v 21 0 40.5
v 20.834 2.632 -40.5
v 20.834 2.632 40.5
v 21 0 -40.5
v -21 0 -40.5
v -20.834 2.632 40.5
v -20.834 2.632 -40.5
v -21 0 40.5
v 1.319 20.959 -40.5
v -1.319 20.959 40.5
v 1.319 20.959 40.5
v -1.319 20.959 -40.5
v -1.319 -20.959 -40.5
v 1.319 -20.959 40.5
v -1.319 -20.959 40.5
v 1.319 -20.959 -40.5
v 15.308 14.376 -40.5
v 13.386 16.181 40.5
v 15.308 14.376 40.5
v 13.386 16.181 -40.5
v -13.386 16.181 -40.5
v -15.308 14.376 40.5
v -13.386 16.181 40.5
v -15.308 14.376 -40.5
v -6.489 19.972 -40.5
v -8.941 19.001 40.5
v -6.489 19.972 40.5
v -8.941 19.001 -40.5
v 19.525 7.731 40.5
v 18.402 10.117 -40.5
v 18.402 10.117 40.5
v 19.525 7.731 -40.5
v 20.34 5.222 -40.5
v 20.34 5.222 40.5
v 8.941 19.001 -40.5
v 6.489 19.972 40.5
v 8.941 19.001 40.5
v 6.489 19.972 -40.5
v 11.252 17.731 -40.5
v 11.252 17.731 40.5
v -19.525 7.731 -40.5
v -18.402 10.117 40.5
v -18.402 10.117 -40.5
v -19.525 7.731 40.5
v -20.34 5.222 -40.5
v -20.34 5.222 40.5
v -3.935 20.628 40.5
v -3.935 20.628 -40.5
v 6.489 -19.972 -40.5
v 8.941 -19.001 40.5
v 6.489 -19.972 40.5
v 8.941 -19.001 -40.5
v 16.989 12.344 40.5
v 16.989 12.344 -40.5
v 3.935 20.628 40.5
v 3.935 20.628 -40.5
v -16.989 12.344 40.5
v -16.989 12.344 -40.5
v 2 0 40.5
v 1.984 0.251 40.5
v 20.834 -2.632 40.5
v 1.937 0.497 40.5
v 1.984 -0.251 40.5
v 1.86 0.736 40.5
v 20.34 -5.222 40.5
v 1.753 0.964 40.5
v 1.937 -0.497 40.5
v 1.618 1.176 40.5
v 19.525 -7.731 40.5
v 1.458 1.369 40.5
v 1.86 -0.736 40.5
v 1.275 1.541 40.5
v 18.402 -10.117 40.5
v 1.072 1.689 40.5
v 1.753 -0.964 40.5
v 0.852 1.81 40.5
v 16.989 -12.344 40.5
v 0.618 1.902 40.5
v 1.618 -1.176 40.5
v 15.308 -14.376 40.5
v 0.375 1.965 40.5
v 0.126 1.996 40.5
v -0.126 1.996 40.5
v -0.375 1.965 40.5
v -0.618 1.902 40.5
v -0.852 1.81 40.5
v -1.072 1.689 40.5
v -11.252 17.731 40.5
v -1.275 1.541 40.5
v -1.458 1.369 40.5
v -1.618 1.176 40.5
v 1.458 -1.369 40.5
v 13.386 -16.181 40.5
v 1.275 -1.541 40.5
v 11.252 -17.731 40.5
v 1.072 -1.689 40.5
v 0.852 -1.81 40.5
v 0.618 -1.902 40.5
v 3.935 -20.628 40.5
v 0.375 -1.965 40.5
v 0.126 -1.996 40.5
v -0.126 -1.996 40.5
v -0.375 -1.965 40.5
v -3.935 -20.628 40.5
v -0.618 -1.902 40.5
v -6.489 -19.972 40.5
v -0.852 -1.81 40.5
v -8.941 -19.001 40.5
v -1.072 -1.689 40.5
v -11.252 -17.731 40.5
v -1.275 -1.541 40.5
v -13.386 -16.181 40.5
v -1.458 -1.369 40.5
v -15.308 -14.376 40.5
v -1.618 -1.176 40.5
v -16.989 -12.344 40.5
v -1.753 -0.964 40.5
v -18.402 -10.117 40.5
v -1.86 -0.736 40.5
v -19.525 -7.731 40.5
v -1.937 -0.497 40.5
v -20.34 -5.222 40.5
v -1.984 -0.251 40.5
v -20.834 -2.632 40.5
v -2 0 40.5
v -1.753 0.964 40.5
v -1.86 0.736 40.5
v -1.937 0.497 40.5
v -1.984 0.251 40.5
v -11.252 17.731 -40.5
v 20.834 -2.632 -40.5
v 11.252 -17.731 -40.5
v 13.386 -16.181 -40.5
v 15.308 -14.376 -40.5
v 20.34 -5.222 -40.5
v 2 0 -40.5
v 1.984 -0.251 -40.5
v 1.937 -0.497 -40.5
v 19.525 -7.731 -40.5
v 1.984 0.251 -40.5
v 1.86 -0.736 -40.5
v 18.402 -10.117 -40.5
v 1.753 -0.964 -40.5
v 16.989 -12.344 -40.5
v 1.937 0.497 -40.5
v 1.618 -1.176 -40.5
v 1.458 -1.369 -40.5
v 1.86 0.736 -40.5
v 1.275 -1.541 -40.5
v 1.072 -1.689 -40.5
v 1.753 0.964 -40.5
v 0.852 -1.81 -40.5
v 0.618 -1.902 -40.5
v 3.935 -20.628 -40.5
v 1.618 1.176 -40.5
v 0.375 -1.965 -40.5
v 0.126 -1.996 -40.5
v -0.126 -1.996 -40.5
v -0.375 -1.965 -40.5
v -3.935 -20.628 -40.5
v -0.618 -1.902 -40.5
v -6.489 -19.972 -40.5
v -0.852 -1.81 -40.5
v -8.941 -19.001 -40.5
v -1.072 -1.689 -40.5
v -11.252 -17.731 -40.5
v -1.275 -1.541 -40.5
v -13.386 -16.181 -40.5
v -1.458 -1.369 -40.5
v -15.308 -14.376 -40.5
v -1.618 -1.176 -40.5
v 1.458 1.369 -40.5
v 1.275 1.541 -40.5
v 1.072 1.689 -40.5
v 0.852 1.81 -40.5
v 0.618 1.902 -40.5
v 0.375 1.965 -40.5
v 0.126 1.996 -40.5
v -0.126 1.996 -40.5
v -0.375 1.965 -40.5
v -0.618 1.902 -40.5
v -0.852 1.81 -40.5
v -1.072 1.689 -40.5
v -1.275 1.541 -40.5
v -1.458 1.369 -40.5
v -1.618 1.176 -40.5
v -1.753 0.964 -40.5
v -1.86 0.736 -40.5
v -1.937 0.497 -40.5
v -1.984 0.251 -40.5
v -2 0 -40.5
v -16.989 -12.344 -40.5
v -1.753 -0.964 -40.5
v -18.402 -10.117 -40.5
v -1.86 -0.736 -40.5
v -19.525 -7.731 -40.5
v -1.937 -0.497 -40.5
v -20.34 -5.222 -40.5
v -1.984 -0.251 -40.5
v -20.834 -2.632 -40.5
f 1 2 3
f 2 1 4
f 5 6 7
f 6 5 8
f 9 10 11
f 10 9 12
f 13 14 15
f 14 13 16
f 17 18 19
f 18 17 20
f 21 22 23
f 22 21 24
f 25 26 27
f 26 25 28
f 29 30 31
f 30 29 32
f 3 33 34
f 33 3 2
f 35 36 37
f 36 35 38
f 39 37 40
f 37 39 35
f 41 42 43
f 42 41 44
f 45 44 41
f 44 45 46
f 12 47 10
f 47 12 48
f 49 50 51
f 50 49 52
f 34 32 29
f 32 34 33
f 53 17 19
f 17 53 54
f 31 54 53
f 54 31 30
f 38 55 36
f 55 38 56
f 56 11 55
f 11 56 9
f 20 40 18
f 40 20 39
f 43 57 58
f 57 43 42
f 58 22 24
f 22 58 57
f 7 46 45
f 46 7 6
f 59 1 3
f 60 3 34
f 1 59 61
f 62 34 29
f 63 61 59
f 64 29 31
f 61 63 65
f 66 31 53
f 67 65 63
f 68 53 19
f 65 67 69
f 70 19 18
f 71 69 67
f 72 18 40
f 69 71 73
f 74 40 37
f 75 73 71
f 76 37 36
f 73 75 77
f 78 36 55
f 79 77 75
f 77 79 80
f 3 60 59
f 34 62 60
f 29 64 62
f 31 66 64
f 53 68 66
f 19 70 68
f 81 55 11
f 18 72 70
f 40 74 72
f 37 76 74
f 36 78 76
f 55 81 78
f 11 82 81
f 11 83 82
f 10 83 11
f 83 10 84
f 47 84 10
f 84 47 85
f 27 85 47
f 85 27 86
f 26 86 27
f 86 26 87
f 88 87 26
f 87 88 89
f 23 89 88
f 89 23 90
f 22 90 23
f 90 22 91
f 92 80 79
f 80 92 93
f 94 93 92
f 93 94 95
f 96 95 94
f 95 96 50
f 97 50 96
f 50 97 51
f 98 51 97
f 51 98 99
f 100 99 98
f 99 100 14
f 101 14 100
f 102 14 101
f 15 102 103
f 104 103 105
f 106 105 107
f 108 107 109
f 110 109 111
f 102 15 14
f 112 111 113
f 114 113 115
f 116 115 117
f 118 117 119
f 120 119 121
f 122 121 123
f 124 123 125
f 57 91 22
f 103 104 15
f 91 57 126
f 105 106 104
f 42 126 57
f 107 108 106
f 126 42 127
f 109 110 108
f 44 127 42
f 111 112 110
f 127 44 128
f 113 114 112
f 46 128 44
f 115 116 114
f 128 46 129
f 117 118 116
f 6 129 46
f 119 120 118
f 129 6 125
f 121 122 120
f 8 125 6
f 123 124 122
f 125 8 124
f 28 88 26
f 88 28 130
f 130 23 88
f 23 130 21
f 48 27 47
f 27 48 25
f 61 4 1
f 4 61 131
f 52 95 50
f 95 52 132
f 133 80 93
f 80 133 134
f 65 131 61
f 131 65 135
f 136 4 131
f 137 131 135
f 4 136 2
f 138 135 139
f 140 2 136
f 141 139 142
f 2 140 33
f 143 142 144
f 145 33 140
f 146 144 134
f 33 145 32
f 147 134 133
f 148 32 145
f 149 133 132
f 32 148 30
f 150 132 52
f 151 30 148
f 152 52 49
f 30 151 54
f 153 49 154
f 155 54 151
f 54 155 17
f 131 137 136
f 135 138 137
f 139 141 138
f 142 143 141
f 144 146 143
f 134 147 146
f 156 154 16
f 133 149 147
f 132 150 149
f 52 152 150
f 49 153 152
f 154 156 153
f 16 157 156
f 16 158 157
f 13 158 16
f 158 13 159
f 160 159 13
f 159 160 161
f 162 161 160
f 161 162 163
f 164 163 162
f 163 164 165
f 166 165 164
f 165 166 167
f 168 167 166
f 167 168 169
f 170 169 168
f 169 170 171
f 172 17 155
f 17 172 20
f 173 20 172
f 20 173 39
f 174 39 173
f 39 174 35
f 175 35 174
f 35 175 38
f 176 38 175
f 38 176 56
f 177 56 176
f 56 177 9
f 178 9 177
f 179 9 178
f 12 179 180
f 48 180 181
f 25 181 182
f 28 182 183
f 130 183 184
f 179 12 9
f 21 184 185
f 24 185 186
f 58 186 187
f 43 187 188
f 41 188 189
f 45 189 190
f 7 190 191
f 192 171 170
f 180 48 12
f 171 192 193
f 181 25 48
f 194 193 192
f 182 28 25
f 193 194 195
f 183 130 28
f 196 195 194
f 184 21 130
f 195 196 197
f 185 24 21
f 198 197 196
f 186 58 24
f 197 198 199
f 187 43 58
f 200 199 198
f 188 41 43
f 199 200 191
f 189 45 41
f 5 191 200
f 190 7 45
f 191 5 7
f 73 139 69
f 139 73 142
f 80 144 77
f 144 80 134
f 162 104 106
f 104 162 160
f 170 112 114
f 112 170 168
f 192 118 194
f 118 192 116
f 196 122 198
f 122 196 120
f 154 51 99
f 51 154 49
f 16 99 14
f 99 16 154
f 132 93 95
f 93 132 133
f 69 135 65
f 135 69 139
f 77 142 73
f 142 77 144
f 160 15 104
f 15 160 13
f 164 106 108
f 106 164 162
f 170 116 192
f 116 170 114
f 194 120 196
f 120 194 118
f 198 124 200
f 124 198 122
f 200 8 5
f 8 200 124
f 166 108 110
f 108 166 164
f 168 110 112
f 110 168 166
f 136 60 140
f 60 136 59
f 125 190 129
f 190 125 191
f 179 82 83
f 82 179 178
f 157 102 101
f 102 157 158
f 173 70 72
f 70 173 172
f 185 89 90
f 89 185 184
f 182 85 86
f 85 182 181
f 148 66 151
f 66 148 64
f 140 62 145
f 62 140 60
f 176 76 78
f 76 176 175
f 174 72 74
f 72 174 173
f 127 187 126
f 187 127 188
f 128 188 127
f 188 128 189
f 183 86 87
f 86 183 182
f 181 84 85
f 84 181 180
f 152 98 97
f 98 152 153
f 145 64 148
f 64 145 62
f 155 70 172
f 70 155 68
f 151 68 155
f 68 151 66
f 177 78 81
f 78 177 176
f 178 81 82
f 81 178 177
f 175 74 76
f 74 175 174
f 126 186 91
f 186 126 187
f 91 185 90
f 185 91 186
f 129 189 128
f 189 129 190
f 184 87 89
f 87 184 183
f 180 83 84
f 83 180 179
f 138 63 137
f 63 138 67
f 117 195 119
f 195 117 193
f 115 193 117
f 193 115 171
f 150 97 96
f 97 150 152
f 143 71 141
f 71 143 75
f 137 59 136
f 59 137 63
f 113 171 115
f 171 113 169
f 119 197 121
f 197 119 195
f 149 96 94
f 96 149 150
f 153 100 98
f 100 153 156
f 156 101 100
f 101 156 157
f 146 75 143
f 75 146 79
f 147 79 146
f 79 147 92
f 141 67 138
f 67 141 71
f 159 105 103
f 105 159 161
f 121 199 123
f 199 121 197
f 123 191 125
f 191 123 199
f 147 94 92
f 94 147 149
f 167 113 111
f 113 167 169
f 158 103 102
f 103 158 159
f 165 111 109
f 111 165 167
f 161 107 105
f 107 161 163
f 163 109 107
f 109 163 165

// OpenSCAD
$fn = 50;


difference() {
	union() {
		translate(v = [0, 0, -40.5000000000]) {
			cylinder(h = 81, r = 21.0000000000);
		}
	}
	union() {
		translate(v = [0, 0, -100.0000000000]) {
			cylinder(h = 200, r = 2);
		}
	}
}
